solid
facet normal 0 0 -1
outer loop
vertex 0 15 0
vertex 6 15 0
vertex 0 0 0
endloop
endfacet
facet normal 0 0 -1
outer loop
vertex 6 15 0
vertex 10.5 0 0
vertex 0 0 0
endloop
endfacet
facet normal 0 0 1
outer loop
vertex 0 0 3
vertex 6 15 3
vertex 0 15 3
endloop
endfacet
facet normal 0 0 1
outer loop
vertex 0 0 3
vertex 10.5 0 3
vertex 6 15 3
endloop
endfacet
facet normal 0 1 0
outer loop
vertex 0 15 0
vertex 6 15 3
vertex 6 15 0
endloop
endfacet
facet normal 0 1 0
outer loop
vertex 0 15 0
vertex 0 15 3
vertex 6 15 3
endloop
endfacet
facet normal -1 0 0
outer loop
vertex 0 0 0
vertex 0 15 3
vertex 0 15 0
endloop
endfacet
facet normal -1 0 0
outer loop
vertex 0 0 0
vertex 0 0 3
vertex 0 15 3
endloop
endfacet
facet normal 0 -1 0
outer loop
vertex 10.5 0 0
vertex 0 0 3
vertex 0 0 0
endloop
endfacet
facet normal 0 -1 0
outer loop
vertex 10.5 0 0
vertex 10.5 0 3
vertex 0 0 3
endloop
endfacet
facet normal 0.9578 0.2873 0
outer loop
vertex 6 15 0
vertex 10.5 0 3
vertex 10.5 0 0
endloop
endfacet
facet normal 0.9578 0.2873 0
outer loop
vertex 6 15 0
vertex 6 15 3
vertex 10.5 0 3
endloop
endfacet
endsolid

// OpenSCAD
// A polygon extruded as a piece to insert into a hinge for structural support
linear_extrude(3) 
polygon(points=[[0,0],[10.5,0],[6,15],[0,15]]);
